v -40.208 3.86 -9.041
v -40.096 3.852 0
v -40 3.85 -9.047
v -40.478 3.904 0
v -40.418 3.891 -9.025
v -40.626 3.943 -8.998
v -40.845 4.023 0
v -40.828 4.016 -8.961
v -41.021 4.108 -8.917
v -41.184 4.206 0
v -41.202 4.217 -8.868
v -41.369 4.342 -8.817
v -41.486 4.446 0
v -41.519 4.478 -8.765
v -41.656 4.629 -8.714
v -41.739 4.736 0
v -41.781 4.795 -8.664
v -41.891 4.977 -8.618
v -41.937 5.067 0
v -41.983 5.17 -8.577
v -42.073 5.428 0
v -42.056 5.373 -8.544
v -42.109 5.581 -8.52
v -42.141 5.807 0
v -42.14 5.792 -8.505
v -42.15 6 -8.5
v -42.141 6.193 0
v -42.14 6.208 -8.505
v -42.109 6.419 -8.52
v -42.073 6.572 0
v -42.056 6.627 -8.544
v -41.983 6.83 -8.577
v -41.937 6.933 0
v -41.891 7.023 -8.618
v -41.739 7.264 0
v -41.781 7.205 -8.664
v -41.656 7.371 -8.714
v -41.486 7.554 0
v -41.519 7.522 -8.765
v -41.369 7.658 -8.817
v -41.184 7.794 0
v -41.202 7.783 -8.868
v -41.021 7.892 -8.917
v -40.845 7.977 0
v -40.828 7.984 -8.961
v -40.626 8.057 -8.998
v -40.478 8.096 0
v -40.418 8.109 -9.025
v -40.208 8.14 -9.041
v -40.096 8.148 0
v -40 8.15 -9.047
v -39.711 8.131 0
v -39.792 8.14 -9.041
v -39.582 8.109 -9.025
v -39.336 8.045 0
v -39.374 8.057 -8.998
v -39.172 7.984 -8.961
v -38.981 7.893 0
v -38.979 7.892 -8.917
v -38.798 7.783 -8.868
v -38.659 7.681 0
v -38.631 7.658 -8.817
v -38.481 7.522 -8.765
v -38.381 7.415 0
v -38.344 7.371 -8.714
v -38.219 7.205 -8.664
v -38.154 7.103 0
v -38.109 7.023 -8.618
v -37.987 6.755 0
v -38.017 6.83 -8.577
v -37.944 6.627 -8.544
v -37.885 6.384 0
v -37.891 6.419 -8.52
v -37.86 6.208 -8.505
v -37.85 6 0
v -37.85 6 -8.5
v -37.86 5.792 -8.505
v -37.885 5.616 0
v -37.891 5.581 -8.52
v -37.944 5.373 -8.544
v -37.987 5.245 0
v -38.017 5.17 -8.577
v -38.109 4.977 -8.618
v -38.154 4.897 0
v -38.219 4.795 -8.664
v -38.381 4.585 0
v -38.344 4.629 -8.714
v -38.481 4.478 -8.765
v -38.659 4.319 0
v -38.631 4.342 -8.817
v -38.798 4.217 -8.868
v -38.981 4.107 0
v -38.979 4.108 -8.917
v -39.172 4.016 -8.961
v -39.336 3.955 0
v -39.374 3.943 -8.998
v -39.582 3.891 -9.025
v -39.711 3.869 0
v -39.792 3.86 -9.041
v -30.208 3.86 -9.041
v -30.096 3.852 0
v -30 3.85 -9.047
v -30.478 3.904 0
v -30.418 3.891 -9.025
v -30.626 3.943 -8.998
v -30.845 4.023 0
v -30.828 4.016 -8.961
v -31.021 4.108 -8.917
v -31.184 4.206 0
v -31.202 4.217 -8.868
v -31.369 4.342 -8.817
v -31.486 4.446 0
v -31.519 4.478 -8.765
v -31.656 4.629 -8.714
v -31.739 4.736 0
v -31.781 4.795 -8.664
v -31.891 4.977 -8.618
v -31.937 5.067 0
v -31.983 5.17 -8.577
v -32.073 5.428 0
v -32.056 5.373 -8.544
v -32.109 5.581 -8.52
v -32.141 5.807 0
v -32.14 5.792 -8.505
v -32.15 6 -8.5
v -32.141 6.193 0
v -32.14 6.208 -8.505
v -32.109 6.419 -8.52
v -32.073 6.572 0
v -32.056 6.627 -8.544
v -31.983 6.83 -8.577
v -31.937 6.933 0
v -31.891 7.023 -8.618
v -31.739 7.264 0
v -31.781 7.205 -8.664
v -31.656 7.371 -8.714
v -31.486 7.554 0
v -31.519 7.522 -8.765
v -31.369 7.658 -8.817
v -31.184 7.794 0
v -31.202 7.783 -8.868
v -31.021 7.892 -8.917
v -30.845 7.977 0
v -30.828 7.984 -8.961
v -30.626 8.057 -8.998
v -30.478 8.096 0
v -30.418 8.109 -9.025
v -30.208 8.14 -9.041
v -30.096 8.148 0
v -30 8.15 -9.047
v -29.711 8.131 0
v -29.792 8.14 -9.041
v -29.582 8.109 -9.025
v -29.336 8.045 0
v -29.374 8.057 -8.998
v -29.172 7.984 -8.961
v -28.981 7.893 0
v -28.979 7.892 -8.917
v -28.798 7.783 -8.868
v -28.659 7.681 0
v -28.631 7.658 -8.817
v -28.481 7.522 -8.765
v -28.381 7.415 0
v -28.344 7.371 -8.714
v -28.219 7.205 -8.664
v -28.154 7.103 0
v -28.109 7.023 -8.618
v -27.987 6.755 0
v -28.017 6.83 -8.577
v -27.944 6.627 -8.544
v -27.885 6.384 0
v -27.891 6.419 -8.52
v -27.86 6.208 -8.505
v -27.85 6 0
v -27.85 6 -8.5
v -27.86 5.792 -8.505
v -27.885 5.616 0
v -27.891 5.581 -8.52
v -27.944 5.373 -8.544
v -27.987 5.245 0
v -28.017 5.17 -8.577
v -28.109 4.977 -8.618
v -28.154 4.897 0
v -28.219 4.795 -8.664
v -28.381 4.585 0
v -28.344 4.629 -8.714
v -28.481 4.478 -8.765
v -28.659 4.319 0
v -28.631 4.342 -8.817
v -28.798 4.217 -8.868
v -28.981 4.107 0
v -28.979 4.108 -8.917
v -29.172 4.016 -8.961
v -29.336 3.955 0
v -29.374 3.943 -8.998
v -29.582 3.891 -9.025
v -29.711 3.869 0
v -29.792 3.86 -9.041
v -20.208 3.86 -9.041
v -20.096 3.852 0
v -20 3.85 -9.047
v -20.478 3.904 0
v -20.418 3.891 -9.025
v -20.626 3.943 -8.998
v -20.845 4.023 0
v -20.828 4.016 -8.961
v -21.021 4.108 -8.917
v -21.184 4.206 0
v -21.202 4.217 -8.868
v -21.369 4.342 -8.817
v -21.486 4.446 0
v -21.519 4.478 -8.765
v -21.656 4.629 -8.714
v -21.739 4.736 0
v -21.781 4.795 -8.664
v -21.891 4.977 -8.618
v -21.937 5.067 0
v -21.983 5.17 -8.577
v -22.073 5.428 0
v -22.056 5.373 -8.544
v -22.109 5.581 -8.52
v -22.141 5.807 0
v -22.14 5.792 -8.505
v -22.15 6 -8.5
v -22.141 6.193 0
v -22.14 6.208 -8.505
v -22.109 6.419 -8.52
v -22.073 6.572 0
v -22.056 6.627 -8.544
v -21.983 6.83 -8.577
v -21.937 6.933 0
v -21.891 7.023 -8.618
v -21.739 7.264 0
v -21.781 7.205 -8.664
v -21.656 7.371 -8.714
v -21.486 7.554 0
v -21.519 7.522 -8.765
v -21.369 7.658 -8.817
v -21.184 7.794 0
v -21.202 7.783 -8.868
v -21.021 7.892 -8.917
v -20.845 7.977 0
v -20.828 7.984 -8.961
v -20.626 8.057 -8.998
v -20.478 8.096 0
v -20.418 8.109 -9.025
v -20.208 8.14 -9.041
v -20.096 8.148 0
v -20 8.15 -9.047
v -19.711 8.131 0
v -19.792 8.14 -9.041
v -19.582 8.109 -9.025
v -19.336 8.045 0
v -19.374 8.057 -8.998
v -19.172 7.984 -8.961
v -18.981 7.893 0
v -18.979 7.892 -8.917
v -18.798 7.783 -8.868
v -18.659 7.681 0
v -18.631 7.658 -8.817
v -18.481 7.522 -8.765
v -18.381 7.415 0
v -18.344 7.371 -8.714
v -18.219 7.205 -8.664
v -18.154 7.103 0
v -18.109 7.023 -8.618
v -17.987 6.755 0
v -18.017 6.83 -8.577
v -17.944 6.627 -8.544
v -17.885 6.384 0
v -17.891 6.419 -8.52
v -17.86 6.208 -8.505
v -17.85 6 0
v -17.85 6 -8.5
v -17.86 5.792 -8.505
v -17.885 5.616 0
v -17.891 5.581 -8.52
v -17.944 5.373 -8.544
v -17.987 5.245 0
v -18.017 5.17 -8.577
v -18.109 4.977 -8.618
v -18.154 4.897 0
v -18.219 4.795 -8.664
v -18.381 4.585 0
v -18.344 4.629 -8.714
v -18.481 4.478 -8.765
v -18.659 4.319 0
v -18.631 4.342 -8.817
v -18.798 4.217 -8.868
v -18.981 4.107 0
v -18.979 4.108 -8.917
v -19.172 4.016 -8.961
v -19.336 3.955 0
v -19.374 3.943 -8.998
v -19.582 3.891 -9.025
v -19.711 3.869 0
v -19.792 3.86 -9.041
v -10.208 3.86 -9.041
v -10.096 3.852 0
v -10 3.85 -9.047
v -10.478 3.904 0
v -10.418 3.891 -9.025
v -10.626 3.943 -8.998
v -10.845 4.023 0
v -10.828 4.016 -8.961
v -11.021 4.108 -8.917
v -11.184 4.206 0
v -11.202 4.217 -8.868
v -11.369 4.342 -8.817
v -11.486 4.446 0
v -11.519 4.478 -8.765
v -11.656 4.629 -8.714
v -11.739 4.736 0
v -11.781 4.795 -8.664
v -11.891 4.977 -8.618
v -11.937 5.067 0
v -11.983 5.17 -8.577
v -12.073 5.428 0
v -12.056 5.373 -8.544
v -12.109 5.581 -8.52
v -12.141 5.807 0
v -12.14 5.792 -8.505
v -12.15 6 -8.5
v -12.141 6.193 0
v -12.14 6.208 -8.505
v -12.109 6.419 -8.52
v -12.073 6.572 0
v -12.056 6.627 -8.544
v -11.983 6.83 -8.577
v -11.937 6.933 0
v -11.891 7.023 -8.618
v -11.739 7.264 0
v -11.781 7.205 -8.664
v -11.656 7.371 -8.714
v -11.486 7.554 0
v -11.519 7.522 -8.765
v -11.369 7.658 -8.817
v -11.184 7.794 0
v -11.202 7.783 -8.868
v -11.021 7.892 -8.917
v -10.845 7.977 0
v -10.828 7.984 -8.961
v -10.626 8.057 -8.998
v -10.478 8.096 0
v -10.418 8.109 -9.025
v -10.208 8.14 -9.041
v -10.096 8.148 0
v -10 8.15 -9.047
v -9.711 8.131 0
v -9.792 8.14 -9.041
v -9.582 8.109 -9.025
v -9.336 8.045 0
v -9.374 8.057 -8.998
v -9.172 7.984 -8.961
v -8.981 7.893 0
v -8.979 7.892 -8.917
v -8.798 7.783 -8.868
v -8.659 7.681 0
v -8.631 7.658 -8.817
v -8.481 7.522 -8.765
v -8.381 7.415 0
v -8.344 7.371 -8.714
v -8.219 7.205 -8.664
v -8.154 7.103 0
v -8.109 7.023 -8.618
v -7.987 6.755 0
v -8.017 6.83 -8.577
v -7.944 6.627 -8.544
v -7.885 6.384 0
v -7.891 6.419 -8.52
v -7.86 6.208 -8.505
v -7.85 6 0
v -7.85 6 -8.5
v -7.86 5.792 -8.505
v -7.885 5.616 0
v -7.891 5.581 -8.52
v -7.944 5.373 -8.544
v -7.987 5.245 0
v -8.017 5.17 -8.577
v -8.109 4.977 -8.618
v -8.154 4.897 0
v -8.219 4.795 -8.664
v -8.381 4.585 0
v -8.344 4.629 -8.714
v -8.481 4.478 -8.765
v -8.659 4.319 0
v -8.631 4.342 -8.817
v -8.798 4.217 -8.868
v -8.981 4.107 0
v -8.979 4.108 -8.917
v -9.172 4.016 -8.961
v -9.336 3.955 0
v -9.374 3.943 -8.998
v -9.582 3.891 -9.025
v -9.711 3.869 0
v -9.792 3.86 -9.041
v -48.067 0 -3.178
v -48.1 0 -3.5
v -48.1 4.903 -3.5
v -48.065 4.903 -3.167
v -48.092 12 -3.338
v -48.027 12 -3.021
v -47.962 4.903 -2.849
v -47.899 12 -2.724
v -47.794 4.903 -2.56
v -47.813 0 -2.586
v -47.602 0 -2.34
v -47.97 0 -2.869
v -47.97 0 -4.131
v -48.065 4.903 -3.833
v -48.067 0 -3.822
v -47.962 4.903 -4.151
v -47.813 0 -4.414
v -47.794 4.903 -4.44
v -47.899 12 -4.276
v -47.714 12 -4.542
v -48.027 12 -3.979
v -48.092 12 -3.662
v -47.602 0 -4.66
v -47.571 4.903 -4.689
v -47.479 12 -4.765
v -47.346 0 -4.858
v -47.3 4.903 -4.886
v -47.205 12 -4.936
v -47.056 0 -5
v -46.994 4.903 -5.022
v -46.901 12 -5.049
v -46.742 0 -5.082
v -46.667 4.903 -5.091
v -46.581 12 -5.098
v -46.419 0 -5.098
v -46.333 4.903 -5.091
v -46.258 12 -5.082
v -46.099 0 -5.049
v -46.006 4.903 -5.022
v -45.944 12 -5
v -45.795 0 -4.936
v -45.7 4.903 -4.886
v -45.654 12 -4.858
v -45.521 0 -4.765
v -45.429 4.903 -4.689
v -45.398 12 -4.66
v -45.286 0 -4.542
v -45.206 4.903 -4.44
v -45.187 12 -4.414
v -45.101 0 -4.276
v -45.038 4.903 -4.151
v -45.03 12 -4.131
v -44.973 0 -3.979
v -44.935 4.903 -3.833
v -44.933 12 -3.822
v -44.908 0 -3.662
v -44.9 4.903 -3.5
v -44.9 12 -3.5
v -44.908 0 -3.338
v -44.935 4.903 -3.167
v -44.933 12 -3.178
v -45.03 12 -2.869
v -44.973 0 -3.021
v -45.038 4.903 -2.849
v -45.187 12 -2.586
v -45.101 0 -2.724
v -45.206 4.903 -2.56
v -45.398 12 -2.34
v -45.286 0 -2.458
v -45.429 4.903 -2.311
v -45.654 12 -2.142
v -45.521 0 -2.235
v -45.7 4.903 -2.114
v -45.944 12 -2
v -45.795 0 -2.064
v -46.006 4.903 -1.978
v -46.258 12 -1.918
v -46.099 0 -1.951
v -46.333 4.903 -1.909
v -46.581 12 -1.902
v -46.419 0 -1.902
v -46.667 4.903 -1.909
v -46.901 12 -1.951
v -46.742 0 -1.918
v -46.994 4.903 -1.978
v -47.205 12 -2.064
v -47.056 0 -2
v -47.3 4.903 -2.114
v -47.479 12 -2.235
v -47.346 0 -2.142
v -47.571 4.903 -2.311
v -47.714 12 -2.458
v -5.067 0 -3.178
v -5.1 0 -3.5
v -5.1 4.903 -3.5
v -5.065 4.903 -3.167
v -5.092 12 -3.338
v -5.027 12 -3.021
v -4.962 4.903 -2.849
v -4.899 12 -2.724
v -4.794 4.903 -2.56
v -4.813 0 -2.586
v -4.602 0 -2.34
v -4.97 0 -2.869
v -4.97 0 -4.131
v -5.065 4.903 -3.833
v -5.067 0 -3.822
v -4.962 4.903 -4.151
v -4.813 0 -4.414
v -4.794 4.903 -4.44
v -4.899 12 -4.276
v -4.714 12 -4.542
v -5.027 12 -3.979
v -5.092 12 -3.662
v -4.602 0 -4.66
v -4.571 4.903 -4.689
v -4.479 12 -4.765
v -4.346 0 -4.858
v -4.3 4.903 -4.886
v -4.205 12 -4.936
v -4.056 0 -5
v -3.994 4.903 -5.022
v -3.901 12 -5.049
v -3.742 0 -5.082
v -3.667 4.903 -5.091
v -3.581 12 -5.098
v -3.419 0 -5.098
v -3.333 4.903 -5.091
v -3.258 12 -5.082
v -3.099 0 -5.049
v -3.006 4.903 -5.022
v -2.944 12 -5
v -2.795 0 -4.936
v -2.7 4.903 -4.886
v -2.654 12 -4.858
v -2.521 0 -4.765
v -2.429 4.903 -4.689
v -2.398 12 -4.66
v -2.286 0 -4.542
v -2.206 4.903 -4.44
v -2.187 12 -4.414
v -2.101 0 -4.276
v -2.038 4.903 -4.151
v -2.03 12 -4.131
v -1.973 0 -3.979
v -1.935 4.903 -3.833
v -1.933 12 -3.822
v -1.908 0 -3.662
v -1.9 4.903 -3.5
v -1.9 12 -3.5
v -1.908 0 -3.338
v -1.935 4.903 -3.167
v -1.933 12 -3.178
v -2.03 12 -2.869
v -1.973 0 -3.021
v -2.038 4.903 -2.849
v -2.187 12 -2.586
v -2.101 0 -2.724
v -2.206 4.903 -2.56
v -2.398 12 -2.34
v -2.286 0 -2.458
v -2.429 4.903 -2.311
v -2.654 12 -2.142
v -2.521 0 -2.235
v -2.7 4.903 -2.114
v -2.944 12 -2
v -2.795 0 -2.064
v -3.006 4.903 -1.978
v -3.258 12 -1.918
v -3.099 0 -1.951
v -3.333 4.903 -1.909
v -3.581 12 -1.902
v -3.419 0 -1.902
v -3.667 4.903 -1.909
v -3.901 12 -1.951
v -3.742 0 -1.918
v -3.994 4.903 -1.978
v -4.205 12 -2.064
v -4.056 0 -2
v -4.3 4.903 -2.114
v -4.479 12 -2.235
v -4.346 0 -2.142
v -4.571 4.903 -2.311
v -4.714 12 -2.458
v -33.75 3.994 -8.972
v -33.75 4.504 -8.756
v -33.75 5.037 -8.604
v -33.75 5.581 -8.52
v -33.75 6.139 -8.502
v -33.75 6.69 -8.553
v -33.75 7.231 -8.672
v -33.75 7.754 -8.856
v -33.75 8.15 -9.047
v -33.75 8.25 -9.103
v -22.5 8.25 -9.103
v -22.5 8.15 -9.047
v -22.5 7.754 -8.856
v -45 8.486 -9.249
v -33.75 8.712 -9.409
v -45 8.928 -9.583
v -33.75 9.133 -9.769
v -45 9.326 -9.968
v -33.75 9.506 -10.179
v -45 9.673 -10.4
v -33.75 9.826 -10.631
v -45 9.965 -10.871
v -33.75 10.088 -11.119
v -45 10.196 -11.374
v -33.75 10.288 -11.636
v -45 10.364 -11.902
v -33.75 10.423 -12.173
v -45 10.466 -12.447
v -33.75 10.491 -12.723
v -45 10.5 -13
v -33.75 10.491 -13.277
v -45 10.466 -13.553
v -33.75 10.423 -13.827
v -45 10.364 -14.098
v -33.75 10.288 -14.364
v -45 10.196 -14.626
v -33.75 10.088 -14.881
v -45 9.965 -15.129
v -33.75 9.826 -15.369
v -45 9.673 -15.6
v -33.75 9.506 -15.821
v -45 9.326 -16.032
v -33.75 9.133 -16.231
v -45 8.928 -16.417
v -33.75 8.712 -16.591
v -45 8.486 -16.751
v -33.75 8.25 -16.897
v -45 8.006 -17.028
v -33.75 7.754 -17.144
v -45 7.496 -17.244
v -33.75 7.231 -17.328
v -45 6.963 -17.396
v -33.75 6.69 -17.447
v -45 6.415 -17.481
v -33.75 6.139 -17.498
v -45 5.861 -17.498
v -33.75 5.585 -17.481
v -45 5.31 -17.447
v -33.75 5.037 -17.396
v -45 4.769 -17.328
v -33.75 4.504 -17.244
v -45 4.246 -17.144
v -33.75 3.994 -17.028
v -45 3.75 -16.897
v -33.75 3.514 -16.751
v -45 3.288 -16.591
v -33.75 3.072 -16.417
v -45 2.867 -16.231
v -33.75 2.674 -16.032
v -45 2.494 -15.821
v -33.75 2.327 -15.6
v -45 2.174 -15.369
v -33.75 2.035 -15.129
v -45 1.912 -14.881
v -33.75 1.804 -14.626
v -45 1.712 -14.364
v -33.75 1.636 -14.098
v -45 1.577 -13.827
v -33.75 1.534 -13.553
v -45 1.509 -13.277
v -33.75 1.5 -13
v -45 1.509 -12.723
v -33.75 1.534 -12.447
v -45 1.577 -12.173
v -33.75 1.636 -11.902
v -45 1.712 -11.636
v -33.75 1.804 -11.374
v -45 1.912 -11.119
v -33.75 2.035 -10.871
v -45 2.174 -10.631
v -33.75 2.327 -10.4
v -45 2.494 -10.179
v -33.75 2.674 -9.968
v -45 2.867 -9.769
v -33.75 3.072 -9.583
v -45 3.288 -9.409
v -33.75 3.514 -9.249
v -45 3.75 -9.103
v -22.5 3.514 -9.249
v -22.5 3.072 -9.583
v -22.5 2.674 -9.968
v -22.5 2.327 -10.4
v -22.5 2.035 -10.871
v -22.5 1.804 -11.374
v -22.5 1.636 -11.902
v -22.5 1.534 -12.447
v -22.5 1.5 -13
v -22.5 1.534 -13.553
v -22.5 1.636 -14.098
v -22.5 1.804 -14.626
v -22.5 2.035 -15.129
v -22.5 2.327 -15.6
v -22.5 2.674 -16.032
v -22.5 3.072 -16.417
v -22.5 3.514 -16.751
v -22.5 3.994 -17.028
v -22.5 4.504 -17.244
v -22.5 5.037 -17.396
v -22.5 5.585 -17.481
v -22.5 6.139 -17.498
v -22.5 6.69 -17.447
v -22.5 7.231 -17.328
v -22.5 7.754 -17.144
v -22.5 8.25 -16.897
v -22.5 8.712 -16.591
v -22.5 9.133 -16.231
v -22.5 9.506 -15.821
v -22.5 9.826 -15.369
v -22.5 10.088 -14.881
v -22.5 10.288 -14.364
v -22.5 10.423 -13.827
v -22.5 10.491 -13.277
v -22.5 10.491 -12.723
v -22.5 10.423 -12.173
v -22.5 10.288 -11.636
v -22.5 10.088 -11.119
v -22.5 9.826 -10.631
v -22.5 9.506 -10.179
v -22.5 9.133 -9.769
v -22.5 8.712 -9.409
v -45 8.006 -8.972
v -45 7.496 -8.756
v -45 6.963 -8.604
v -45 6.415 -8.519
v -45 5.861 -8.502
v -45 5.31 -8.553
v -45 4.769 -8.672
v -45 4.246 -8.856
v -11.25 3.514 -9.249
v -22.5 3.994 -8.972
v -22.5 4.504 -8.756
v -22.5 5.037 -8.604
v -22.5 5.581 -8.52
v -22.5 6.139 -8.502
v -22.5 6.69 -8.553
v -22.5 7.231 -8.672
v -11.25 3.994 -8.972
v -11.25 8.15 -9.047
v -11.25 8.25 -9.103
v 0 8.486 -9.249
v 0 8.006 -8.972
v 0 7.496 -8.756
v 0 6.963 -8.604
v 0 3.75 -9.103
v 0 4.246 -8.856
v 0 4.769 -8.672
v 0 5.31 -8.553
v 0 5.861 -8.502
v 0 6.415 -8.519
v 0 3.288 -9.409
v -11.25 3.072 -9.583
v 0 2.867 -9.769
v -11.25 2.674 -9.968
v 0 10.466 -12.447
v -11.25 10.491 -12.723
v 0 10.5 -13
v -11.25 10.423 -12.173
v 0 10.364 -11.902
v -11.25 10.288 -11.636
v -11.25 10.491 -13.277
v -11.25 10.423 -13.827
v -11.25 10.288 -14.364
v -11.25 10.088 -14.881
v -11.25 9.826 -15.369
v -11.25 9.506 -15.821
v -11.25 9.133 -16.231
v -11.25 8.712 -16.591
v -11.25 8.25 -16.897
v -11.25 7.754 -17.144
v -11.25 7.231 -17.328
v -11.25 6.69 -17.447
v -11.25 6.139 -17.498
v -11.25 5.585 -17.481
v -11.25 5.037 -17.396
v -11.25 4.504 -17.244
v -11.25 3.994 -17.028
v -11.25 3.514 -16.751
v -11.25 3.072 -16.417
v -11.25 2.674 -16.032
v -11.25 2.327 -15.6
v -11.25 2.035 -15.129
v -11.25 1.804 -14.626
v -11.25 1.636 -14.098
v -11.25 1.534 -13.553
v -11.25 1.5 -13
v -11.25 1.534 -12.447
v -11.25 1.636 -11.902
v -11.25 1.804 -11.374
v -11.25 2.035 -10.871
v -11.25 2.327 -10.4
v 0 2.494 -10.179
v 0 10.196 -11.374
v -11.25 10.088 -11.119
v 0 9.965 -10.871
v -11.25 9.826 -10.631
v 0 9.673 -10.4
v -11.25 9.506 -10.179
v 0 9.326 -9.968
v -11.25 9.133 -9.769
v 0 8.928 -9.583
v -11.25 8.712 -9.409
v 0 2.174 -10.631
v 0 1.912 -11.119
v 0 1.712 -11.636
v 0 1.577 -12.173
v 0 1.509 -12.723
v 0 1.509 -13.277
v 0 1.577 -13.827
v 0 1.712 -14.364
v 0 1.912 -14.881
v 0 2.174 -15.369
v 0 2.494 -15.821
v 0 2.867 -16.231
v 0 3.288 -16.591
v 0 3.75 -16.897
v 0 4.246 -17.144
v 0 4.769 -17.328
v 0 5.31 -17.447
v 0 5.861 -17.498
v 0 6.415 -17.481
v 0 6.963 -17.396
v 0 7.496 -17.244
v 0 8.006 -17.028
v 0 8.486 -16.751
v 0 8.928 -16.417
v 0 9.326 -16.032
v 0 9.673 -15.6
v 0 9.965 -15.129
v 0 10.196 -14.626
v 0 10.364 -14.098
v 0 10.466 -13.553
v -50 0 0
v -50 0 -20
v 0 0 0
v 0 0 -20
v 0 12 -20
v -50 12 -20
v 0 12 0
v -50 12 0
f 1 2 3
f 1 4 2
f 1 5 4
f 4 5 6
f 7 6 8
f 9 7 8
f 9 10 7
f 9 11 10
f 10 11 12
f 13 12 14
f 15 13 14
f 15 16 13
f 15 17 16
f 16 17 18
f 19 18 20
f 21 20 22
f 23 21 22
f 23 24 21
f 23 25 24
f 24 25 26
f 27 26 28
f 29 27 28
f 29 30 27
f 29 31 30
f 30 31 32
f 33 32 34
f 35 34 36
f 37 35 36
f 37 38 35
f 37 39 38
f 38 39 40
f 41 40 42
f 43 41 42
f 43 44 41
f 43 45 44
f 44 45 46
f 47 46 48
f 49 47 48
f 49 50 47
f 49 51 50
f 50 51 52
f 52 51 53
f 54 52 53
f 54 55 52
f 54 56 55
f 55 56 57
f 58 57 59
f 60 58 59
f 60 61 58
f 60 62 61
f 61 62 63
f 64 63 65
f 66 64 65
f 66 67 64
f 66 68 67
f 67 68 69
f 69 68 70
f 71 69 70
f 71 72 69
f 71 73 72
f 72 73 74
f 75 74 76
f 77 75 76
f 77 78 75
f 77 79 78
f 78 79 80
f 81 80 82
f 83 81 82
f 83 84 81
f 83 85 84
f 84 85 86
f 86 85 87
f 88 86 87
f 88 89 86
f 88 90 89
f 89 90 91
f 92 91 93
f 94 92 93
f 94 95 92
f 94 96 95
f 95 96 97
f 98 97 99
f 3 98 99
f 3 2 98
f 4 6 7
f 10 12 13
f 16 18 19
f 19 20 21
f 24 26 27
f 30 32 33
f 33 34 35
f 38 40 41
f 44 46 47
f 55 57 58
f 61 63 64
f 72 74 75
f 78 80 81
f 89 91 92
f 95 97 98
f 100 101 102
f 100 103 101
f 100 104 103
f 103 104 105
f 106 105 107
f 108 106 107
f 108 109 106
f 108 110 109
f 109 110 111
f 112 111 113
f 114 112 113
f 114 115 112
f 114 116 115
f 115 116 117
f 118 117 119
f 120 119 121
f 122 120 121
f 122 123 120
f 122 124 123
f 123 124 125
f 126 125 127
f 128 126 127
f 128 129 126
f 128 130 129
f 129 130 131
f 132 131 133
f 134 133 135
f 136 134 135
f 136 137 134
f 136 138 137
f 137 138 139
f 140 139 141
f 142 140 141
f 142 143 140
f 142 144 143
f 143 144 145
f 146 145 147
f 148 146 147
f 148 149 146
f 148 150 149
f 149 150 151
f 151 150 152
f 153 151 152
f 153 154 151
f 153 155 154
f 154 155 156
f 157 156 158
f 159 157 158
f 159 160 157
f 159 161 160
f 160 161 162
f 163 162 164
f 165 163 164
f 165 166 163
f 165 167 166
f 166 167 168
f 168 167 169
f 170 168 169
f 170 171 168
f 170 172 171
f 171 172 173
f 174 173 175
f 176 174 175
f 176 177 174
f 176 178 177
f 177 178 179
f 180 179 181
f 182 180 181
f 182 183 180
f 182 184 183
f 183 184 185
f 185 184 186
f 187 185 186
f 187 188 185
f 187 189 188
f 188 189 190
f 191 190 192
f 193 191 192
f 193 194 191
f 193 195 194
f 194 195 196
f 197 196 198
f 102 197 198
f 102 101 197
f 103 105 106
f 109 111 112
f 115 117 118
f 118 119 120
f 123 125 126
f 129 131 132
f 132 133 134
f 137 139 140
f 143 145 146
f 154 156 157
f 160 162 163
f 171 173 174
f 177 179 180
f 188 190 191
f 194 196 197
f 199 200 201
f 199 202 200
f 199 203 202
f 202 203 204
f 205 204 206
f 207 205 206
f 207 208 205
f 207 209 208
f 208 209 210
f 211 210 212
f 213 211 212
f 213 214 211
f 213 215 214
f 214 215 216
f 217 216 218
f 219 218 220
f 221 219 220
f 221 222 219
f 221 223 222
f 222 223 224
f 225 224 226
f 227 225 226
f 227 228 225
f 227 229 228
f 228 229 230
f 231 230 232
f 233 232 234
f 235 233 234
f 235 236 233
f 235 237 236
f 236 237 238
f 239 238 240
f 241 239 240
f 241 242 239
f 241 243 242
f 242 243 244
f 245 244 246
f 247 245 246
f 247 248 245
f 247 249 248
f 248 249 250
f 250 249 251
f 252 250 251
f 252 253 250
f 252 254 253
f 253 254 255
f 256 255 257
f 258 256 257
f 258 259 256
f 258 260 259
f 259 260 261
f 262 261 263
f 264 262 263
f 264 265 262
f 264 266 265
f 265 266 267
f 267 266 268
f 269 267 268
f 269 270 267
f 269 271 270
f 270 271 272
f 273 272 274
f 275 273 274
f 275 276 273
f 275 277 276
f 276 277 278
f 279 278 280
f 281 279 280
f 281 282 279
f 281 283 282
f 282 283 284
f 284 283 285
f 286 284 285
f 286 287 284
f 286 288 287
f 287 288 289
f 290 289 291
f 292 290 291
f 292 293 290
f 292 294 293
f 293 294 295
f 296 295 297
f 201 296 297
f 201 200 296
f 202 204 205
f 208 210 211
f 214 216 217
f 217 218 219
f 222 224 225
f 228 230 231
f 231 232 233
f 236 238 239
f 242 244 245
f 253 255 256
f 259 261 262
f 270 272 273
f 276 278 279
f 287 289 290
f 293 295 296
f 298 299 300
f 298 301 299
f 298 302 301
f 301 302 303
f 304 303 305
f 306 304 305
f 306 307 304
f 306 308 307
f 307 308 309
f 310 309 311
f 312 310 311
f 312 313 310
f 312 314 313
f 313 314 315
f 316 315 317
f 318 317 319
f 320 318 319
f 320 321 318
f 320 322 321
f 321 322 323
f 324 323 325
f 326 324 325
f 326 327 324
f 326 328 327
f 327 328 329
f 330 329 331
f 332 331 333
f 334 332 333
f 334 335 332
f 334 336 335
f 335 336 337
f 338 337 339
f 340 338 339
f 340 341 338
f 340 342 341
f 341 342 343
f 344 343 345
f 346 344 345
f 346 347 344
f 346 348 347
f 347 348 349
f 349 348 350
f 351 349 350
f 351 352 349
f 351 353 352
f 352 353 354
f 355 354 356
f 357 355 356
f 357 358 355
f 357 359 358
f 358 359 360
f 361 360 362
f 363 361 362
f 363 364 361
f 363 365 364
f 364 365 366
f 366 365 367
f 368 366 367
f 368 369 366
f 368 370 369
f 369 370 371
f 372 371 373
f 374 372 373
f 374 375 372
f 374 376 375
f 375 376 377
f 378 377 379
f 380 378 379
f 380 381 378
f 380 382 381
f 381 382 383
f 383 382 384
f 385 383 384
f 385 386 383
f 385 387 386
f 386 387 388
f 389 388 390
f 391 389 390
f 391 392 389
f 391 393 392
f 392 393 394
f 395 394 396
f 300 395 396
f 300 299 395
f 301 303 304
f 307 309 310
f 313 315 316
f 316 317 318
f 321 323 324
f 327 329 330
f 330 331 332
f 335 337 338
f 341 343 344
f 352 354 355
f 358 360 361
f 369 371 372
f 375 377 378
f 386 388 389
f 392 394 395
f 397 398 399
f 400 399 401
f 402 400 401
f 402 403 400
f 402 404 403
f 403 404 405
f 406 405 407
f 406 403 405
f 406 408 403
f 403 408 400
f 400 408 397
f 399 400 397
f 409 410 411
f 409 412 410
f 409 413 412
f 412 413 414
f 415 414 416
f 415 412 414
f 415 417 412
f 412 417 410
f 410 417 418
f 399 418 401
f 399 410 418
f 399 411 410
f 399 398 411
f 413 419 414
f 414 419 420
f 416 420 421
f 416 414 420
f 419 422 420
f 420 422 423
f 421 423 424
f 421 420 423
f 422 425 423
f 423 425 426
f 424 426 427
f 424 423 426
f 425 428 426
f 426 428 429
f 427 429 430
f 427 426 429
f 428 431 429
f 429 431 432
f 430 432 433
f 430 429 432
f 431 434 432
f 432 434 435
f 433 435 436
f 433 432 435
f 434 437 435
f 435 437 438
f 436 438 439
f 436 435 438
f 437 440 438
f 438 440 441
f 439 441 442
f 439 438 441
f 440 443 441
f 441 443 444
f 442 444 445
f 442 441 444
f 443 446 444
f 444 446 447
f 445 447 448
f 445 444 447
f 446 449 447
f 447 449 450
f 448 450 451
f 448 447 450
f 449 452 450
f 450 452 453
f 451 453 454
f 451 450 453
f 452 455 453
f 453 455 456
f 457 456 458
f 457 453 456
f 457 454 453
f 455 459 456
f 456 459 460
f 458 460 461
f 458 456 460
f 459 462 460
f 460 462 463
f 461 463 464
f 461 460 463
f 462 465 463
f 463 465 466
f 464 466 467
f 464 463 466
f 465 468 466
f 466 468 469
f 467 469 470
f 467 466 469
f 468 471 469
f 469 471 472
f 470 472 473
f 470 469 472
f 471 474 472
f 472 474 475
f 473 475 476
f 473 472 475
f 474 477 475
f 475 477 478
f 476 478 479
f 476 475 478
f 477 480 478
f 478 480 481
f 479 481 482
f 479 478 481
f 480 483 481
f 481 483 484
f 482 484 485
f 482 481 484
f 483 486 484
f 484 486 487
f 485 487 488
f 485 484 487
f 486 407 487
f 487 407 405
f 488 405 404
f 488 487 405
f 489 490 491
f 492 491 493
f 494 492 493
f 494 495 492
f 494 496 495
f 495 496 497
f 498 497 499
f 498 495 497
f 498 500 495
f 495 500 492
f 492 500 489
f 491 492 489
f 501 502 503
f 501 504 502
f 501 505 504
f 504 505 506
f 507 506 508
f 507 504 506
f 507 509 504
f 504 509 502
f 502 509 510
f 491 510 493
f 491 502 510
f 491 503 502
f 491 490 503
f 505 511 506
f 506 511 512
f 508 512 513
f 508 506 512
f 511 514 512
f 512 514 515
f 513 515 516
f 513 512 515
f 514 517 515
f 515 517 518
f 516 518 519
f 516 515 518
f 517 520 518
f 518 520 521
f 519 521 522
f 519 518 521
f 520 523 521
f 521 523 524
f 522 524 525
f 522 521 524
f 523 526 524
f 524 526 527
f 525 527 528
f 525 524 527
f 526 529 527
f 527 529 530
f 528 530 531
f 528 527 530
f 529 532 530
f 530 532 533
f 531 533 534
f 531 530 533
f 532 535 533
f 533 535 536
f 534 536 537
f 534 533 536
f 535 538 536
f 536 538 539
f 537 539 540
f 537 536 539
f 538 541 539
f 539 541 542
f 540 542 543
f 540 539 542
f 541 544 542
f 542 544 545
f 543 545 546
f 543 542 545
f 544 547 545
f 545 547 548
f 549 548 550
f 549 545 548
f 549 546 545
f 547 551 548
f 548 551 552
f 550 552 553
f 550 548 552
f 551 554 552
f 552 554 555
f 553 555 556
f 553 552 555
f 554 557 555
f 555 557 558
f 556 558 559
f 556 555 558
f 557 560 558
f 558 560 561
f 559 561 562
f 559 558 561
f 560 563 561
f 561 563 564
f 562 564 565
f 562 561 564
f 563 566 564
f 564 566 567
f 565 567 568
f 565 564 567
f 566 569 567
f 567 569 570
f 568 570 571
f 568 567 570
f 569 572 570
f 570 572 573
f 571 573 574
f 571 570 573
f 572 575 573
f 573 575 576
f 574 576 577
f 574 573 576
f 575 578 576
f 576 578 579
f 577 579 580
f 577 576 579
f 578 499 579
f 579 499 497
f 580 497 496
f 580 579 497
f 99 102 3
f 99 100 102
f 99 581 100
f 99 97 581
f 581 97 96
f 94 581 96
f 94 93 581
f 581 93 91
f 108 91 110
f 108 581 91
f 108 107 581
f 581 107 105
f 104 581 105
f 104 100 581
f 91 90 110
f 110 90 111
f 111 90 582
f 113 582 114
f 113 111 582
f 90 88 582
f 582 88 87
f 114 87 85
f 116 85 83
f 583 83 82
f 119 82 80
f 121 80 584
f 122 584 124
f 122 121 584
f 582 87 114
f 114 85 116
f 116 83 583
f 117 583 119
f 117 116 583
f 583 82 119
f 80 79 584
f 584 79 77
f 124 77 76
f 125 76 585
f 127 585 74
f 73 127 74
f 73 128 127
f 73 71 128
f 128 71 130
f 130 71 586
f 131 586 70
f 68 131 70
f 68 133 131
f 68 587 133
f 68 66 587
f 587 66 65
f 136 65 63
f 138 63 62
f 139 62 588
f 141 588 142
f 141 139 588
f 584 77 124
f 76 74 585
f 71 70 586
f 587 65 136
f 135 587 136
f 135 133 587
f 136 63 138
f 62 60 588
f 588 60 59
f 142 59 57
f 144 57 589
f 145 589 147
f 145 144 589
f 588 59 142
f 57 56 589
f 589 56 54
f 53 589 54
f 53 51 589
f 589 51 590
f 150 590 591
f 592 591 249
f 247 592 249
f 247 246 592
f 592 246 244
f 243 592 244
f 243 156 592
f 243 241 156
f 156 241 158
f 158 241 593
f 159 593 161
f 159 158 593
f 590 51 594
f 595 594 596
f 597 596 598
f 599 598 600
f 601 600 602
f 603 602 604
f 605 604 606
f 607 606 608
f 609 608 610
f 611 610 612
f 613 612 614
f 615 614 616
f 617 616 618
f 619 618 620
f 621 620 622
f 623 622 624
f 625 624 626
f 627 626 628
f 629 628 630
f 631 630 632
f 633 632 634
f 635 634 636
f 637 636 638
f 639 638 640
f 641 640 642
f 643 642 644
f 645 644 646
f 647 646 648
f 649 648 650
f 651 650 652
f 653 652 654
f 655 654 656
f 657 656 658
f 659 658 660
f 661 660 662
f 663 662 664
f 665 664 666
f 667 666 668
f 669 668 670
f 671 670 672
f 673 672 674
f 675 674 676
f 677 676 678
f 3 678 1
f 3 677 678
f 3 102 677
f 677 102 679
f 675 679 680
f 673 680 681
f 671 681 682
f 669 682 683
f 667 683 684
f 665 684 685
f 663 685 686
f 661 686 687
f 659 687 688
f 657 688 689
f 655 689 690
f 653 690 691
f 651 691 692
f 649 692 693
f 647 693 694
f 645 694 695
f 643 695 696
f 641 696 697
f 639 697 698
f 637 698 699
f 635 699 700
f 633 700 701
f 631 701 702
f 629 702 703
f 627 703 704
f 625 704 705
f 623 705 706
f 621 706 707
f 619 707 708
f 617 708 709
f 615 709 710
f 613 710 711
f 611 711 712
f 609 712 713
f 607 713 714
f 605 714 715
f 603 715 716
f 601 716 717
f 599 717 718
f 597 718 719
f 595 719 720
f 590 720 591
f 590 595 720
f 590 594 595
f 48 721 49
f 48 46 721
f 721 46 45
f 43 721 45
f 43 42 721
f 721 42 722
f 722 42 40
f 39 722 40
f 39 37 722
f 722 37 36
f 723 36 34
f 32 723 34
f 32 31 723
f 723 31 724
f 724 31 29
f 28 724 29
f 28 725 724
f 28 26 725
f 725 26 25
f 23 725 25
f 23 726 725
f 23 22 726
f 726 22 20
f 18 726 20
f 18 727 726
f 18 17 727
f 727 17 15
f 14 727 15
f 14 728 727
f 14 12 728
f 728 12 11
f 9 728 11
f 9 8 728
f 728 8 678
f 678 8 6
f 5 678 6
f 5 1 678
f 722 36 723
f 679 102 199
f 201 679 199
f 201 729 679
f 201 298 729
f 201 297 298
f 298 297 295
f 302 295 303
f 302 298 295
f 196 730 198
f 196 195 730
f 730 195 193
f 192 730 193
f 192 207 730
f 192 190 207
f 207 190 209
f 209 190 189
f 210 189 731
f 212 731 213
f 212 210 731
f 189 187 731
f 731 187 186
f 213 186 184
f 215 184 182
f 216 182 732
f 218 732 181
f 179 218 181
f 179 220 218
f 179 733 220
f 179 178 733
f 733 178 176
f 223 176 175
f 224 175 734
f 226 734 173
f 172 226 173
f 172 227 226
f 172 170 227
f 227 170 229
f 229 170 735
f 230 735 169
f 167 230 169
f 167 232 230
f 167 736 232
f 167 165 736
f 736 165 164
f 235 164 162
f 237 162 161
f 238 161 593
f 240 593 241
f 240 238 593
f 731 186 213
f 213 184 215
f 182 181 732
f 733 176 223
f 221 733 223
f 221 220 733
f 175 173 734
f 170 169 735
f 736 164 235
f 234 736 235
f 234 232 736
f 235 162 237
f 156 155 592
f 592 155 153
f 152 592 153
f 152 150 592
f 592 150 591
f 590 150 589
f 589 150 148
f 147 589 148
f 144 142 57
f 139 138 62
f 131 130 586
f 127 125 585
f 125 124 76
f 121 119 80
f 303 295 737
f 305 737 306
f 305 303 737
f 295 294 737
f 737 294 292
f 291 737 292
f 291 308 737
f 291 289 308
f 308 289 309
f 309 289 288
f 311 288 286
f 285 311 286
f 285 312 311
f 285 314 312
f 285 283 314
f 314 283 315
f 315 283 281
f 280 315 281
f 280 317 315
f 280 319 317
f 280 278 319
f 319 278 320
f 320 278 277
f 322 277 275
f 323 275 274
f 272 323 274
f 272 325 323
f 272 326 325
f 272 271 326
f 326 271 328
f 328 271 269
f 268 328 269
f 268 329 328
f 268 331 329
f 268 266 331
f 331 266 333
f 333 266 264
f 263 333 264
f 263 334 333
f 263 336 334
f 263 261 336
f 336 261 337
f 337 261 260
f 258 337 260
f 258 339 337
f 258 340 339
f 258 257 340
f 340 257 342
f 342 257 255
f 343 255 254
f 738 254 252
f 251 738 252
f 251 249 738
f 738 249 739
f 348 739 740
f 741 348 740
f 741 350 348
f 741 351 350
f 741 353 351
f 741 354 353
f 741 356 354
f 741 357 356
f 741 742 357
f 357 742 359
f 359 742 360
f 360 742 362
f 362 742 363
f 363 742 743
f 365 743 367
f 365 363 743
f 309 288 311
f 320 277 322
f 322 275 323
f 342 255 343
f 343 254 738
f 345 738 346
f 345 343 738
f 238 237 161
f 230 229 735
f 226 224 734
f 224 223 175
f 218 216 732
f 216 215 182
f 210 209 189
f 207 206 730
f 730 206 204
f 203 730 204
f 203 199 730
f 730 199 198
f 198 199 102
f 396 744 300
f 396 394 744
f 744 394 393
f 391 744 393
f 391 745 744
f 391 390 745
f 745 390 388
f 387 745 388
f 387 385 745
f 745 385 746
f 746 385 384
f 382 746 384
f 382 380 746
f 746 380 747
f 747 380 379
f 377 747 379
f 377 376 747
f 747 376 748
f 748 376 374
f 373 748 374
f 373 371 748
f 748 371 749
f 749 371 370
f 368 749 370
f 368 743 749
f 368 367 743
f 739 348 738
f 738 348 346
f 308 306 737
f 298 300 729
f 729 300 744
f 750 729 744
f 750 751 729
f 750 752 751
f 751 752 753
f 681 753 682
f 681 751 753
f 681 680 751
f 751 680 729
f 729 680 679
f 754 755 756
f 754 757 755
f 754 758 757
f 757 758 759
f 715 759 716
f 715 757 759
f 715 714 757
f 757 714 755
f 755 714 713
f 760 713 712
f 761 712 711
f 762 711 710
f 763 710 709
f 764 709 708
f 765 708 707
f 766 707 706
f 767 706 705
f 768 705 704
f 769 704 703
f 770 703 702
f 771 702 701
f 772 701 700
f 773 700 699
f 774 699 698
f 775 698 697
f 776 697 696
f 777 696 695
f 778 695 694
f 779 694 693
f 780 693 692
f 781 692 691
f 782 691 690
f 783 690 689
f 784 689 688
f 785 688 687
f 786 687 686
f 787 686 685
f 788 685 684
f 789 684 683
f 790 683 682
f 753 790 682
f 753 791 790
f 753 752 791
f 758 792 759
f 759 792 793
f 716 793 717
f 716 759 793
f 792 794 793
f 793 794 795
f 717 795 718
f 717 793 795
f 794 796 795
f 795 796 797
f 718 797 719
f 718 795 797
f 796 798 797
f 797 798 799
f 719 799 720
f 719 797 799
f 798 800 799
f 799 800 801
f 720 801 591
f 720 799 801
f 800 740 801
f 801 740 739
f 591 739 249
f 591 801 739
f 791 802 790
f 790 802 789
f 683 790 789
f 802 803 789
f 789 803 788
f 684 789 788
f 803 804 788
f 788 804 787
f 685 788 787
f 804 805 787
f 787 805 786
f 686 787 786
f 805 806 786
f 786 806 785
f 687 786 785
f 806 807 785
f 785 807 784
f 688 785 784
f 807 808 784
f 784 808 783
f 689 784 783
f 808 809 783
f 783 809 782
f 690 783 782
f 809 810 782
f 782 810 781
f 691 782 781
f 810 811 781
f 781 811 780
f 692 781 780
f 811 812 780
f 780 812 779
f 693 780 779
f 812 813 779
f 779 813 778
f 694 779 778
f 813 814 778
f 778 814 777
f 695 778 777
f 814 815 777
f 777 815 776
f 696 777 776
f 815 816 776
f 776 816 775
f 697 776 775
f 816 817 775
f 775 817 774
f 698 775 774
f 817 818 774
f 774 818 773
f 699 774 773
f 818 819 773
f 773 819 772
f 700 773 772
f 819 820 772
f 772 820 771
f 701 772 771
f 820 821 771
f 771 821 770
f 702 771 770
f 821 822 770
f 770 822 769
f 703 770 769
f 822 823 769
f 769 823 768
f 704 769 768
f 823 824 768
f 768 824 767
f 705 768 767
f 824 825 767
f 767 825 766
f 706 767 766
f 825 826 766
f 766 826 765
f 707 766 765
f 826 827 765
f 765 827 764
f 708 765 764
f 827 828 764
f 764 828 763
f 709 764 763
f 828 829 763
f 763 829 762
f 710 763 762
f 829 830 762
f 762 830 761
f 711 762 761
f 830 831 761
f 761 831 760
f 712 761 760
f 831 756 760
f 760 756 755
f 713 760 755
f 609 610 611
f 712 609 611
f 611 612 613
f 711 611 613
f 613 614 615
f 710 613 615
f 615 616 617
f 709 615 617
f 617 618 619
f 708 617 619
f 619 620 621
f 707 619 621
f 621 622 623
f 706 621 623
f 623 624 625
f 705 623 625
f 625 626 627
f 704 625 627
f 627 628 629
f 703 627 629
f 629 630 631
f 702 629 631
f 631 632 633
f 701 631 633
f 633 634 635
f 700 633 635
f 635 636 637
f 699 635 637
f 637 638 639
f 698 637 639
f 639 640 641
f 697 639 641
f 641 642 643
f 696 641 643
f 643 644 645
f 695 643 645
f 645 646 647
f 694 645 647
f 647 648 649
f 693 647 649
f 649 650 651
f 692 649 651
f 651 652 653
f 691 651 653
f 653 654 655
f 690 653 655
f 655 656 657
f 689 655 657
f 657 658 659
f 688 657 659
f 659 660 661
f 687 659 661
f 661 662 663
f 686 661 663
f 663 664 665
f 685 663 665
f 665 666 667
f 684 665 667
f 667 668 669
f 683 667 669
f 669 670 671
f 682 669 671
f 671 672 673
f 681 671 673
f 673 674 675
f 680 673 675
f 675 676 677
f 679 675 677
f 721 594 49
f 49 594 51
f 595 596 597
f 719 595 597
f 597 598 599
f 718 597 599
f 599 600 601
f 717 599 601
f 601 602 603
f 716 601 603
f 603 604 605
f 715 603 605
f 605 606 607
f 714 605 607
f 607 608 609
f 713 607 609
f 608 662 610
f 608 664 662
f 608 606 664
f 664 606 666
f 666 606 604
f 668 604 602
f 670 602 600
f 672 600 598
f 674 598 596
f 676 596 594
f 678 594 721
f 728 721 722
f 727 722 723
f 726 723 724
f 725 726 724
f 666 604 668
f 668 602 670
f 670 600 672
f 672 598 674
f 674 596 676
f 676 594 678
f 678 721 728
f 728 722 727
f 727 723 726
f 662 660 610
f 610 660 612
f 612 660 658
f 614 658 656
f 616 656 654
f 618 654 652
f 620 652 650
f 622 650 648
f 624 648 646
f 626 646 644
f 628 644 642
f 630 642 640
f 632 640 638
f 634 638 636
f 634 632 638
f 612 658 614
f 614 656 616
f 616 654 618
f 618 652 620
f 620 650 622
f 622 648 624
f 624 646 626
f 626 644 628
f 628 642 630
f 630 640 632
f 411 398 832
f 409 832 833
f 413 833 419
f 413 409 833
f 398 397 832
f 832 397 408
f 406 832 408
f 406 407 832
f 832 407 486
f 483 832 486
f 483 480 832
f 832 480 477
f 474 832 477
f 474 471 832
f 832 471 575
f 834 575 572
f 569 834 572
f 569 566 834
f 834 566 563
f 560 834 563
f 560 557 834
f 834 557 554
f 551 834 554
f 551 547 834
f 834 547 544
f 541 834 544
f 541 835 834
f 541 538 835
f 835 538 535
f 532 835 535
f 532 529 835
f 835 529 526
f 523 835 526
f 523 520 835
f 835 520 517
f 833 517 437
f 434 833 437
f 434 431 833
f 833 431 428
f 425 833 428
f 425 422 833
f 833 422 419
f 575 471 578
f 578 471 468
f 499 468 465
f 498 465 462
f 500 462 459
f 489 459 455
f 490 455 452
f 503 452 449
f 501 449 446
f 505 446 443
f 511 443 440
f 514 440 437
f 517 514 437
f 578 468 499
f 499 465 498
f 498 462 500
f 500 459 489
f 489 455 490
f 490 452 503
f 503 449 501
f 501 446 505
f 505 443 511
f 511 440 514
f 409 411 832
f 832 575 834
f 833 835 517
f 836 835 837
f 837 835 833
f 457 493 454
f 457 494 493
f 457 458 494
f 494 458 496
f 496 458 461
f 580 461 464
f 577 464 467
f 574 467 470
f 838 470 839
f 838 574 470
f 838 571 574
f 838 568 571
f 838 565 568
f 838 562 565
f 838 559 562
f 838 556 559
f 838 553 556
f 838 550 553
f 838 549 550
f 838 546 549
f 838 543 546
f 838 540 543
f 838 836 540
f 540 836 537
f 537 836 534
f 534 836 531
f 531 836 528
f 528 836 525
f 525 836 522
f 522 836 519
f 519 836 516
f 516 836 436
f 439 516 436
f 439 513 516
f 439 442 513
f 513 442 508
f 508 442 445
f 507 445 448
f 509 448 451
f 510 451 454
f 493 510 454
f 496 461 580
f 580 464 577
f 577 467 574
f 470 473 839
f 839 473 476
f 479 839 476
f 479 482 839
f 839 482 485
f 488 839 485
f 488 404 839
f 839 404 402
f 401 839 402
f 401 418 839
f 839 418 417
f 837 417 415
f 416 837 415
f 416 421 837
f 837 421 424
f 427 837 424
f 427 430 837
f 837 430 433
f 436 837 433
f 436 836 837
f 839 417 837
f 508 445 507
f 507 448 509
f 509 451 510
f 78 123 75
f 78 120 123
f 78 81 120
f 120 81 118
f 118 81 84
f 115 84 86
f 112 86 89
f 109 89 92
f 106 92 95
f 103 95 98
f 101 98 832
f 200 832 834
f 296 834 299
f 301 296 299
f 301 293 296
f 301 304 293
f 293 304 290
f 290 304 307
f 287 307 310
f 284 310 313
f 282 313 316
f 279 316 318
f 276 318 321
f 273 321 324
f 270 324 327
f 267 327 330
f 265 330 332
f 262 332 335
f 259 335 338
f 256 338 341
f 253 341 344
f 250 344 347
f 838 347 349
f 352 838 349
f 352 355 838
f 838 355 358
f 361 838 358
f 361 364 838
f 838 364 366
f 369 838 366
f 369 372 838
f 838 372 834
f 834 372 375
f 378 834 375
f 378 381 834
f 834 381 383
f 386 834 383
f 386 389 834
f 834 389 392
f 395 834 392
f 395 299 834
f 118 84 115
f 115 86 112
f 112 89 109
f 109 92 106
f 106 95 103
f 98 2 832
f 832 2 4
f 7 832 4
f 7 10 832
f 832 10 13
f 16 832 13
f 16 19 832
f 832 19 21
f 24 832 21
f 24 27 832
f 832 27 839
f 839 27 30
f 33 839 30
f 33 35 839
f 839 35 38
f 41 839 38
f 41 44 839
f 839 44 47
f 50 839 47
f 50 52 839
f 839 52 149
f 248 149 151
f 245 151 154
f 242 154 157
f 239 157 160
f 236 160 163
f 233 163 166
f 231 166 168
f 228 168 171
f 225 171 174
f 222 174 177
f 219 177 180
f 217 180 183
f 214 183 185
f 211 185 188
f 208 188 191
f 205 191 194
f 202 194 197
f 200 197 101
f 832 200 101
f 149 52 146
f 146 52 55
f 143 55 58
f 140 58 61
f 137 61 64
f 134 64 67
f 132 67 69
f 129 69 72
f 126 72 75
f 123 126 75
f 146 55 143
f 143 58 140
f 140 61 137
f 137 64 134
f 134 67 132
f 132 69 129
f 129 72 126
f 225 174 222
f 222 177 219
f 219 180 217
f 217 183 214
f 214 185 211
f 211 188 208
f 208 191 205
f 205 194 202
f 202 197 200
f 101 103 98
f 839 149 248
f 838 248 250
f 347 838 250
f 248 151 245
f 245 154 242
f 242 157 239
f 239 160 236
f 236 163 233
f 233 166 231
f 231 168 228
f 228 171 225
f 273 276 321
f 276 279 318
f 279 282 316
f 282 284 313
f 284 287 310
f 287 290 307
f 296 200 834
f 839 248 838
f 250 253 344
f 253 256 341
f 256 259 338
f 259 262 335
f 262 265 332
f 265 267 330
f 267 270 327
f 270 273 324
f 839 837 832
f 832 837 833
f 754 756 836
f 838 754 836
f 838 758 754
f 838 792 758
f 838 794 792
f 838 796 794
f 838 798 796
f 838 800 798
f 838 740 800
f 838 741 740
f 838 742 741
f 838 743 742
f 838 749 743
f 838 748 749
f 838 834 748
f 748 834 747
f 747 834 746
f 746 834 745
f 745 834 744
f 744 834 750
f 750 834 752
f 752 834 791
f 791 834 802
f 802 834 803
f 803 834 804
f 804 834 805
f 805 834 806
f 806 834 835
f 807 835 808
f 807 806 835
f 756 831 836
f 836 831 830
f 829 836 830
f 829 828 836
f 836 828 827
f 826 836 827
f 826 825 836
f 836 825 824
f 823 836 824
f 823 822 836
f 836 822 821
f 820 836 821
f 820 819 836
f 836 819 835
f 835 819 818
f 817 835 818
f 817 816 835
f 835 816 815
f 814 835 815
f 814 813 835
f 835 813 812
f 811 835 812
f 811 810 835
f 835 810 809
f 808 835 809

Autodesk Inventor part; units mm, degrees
ref_plane "YZ Plane" through (0, 0, 0) normal (1, 0, 0) x (0, 1, 0)
sketch "Sketch1" plane through (0, 0, 0) normal (1, 0, 0) x (0, 1, 0)
  line L0 (0, 0) -> (12, 0)
  line L1 (12, 0) -> (12, -20)
  line L2 (12, -20) -> (0, -20)
  line L3 (0, -20) -> (0, 0)
  circle A0 centre (6, -13) radius 4.5
  dimension "d0" = 20
  dimension "d1" = 12
  dimension "d2" = 6
  dimension "d3" = 13
  dimension "d4" = 9
extrude "Extrusion1" add sketch "Sketch1" against normal blind 50 contours L0 L1 L2 L3 | A0
ref_plane "Work Plane1" through (0, 0, -10) normal (0, 0, 1) x (1, 0, 0)
ref_plane "Work Plane3" through (0, 6, -20) normal (0, -1, 0) x (1, 0, 0)
sketch "Sketch4" plane through (0, 12, 0) normal (0, 1, 0) x (1, 0, 0)
  line L0 (0, 0) -> (0, 20) projected
  line L1 (0, 0) -> (-50, 0) projected
  circle A0 centre (-3.5, 3.5) radius 1.6
  dimension "d93" = 3.2
  dimension "d94" = 3.5
  dimension "d95" = 3.5
hole "Hole1" at (0, 6, -13) direction (-1, 0, 0) diameter 9 depth 45
hole "Hole2" at (-3.5, 12, -3.5) direction (0, -1, 0) diameter 3.2 end through all
pattern_linear "Rectangular Pattern7" count 2 spacing 43 along (-1, 0, 0) of "Hole2"
sketch "Sketch2" plane through (0, 0, 0) normal (0, 0, 1) x (1, 0, 0)
  line L0 (0, 0) -> (-50, 0) projected
  line L1 (0, 0) -> (0, 12) projected
  circle A0 centre (-10, 6) radius 2.15
  dimension "d7" = 4.3
  dimension "d8" = 6
  dimension "d9" = 10
hole "Hole6" at (-10, 6, 0) direction (0, 0, -1) diameter 4.3 depth 10
pattern_linear "Rectangular Pattern10" count 4 spacing 10 along (-1, 0, 0) of "Hole6"
equation "\"d2\" = 0.5 * d1"
equation "\"d8\" = 0.5 * d1"
properties part number "AirVacManifold_v2"
